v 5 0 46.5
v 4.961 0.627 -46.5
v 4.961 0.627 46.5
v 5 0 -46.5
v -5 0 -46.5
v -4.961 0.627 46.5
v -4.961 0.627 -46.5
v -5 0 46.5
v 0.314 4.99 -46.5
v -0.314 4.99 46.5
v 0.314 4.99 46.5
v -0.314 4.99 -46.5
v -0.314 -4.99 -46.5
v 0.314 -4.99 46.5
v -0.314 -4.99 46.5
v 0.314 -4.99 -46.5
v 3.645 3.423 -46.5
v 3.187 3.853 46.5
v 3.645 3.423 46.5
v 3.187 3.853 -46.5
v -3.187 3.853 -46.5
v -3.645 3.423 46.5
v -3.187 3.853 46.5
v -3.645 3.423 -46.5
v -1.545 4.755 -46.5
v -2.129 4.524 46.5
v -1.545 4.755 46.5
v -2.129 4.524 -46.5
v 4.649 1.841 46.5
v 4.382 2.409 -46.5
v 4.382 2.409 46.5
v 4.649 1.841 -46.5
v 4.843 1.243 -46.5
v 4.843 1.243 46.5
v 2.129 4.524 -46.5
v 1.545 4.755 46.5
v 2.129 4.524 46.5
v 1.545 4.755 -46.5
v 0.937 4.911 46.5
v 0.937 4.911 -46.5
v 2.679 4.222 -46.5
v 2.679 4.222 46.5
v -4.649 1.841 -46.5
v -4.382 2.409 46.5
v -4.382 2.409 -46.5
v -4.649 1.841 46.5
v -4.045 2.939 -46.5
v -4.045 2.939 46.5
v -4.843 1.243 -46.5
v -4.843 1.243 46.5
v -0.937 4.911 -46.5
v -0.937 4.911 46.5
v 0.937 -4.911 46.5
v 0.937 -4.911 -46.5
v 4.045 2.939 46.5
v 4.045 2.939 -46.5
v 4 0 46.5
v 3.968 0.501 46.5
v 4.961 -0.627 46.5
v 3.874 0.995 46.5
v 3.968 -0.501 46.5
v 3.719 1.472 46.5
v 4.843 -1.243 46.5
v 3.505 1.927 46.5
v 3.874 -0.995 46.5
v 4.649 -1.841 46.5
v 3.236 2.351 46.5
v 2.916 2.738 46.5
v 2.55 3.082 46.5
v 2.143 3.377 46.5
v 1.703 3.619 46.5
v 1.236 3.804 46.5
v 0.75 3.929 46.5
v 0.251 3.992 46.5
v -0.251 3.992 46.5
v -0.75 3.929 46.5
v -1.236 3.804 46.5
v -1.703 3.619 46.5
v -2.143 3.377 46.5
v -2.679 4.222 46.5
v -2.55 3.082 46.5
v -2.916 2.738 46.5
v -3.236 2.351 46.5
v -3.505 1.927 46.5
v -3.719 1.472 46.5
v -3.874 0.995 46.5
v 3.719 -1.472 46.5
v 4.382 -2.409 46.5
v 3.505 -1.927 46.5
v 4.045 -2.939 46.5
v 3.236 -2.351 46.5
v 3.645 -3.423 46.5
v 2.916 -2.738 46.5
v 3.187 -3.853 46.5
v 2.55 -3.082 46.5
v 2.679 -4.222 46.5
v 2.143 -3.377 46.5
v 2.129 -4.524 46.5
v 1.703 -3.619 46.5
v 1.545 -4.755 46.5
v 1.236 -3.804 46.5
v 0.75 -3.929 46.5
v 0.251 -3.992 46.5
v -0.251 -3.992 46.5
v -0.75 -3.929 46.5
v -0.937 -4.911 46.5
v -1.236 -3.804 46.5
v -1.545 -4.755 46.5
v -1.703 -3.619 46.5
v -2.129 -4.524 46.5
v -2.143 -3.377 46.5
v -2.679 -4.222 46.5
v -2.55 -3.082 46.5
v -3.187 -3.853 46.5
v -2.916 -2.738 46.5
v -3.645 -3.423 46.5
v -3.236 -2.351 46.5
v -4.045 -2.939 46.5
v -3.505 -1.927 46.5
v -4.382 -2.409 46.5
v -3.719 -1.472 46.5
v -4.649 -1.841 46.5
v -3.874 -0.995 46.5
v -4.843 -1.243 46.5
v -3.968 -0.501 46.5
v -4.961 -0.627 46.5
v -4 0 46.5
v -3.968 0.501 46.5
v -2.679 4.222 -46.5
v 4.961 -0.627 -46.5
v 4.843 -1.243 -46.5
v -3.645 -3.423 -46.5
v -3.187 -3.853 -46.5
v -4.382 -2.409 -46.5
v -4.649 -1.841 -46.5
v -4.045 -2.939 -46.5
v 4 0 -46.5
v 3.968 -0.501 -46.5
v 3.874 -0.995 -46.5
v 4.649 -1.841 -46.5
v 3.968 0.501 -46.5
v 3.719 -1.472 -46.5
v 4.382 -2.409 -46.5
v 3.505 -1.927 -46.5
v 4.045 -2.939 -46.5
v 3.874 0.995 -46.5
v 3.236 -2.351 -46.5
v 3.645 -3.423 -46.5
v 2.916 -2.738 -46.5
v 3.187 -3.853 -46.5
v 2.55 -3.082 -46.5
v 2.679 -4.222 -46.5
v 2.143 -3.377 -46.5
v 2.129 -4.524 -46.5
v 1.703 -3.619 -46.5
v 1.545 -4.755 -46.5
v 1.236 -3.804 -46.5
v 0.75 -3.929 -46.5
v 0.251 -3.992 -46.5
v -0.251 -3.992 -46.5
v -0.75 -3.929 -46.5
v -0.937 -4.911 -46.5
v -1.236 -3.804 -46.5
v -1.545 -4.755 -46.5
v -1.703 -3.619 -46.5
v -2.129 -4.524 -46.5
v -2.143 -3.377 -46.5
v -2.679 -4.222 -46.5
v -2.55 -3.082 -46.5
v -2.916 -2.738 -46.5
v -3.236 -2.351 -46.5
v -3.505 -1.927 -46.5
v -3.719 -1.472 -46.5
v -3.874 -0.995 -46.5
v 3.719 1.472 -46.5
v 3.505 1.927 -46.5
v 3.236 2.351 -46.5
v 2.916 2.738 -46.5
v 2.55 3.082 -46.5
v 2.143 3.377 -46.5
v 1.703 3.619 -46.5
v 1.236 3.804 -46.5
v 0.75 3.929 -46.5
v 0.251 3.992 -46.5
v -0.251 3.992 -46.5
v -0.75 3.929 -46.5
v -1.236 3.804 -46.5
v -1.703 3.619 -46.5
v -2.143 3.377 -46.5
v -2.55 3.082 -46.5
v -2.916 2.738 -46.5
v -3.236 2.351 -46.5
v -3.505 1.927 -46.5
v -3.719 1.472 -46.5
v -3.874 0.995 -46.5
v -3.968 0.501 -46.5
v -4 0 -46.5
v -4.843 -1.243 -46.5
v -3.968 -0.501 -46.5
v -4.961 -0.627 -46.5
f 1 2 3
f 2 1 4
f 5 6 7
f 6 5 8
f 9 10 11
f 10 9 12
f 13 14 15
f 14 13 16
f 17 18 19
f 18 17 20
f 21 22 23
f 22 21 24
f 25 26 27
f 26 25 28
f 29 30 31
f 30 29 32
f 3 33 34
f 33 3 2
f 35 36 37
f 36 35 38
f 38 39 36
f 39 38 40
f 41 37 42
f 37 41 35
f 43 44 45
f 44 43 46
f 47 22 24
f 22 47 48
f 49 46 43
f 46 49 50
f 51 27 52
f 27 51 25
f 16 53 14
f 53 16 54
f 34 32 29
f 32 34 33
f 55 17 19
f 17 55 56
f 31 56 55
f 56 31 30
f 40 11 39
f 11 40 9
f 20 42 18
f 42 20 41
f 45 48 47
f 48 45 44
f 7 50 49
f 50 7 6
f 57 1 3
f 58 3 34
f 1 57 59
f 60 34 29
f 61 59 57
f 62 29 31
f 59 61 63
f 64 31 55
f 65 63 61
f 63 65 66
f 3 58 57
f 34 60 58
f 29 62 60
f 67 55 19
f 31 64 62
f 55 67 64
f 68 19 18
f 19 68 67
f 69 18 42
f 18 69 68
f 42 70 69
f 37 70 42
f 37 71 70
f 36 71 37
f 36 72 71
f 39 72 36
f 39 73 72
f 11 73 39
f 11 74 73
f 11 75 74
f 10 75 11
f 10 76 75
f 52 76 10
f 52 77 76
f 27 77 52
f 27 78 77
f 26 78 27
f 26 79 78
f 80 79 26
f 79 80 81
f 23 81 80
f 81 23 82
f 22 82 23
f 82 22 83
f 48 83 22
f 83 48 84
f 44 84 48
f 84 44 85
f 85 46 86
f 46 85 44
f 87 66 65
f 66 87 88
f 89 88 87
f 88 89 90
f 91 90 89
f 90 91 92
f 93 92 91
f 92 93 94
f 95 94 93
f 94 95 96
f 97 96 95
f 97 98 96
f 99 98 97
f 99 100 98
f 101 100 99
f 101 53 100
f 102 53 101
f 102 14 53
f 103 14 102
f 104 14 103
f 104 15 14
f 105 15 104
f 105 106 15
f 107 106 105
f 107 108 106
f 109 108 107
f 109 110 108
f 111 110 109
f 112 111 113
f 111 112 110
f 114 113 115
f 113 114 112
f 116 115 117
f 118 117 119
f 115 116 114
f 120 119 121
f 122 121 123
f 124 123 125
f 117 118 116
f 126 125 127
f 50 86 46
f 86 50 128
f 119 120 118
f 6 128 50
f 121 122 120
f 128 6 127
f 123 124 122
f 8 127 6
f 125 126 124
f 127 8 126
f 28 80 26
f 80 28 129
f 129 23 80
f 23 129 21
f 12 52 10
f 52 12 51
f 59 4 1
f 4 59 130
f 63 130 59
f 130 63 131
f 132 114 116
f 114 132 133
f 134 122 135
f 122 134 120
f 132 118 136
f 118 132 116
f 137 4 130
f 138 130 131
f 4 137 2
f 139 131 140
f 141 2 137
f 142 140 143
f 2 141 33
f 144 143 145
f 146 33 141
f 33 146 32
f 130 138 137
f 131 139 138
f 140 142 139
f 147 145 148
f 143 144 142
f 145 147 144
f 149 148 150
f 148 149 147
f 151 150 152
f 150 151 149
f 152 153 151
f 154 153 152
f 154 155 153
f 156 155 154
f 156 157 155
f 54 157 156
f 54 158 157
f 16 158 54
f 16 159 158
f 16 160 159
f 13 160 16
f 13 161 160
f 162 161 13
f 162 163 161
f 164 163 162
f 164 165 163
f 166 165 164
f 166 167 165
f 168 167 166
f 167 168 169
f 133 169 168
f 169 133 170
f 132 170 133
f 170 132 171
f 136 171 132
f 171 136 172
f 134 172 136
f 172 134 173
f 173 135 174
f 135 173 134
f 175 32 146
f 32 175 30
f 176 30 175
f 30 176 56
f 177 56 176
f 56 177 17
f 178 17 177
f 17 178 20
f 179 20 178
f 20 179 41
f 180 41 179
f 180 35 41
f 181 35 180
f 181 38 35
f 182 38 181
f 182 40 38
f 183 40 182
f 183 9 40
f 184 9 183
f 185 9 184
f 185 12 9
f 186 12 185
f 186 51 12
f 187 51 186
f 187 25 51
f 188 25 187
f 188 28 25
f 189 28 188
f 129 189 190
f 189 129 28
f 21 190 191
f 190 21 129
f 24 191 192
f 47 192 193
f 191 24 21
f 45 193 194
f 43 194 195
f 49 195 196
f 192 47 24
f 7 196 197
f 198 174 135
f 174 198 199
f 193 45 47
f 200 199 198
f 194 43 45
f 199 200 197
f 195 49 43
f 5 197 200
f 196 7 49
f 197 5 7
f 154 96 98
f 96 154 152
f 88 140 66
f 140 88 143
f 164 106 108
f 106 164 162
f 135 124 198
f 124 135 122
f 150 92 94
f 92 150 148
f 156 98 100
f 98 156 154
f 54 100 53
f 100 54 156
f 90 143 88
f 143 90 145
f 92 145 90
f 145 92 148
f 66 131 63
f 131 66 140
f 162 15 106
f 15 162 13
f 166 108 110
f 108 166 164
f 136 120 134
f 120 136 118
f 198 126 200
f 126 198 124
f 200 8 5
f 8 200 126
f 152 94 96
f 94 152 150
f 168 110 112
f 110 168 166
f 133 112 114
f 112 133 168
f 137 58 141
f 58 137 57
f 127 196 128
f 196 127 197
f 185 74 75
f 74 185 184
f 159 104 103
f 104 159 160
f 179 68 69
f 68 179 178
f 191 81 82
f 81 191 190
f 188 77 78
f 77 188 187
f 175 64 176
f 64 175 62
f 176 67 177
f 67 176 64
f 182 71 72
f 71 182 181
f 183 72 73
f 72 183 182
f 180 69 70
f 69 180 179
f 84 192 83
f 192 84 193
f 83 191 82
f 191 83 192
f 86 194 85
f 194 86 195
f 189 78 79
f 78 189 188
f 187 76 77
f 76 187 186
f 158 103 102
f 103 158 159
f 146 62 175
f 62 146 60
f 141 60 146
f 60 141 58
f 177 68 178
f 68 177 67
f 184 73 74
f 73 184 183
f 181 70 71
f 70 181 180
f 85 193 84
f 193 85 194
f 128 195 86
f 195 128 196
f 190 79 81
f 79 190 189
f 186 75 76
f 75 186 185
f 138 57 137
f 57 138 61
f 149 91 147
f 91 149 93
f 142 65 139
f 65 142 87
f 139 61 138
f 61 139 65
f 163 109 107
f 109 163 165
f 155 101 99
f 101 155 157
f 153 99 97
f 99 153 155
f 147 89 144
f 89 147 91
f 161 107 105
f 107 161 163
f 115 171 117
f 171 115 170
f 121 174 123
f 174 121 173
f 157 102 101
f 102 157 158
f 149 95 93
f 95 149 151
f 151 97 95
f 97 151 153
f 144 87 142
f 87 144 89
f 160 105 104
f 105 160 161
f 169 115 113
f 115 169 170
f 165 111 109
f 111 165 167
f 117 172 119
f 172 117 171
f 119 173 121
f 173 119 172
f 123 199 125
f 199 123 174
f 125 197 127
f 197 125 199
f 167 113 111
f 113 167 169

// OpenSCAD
$fn = 50;


difference() {
	union() {
		translate(v = [0, 0, -46.5000000000]) {
			cylinder(h = 93, r = 5.0000000000);
		}
	}
	union() {
		translate(v = [0, 0, -100.0000000000]) {
			cylinder(h = 200, r = 4);
		}
	}
}
